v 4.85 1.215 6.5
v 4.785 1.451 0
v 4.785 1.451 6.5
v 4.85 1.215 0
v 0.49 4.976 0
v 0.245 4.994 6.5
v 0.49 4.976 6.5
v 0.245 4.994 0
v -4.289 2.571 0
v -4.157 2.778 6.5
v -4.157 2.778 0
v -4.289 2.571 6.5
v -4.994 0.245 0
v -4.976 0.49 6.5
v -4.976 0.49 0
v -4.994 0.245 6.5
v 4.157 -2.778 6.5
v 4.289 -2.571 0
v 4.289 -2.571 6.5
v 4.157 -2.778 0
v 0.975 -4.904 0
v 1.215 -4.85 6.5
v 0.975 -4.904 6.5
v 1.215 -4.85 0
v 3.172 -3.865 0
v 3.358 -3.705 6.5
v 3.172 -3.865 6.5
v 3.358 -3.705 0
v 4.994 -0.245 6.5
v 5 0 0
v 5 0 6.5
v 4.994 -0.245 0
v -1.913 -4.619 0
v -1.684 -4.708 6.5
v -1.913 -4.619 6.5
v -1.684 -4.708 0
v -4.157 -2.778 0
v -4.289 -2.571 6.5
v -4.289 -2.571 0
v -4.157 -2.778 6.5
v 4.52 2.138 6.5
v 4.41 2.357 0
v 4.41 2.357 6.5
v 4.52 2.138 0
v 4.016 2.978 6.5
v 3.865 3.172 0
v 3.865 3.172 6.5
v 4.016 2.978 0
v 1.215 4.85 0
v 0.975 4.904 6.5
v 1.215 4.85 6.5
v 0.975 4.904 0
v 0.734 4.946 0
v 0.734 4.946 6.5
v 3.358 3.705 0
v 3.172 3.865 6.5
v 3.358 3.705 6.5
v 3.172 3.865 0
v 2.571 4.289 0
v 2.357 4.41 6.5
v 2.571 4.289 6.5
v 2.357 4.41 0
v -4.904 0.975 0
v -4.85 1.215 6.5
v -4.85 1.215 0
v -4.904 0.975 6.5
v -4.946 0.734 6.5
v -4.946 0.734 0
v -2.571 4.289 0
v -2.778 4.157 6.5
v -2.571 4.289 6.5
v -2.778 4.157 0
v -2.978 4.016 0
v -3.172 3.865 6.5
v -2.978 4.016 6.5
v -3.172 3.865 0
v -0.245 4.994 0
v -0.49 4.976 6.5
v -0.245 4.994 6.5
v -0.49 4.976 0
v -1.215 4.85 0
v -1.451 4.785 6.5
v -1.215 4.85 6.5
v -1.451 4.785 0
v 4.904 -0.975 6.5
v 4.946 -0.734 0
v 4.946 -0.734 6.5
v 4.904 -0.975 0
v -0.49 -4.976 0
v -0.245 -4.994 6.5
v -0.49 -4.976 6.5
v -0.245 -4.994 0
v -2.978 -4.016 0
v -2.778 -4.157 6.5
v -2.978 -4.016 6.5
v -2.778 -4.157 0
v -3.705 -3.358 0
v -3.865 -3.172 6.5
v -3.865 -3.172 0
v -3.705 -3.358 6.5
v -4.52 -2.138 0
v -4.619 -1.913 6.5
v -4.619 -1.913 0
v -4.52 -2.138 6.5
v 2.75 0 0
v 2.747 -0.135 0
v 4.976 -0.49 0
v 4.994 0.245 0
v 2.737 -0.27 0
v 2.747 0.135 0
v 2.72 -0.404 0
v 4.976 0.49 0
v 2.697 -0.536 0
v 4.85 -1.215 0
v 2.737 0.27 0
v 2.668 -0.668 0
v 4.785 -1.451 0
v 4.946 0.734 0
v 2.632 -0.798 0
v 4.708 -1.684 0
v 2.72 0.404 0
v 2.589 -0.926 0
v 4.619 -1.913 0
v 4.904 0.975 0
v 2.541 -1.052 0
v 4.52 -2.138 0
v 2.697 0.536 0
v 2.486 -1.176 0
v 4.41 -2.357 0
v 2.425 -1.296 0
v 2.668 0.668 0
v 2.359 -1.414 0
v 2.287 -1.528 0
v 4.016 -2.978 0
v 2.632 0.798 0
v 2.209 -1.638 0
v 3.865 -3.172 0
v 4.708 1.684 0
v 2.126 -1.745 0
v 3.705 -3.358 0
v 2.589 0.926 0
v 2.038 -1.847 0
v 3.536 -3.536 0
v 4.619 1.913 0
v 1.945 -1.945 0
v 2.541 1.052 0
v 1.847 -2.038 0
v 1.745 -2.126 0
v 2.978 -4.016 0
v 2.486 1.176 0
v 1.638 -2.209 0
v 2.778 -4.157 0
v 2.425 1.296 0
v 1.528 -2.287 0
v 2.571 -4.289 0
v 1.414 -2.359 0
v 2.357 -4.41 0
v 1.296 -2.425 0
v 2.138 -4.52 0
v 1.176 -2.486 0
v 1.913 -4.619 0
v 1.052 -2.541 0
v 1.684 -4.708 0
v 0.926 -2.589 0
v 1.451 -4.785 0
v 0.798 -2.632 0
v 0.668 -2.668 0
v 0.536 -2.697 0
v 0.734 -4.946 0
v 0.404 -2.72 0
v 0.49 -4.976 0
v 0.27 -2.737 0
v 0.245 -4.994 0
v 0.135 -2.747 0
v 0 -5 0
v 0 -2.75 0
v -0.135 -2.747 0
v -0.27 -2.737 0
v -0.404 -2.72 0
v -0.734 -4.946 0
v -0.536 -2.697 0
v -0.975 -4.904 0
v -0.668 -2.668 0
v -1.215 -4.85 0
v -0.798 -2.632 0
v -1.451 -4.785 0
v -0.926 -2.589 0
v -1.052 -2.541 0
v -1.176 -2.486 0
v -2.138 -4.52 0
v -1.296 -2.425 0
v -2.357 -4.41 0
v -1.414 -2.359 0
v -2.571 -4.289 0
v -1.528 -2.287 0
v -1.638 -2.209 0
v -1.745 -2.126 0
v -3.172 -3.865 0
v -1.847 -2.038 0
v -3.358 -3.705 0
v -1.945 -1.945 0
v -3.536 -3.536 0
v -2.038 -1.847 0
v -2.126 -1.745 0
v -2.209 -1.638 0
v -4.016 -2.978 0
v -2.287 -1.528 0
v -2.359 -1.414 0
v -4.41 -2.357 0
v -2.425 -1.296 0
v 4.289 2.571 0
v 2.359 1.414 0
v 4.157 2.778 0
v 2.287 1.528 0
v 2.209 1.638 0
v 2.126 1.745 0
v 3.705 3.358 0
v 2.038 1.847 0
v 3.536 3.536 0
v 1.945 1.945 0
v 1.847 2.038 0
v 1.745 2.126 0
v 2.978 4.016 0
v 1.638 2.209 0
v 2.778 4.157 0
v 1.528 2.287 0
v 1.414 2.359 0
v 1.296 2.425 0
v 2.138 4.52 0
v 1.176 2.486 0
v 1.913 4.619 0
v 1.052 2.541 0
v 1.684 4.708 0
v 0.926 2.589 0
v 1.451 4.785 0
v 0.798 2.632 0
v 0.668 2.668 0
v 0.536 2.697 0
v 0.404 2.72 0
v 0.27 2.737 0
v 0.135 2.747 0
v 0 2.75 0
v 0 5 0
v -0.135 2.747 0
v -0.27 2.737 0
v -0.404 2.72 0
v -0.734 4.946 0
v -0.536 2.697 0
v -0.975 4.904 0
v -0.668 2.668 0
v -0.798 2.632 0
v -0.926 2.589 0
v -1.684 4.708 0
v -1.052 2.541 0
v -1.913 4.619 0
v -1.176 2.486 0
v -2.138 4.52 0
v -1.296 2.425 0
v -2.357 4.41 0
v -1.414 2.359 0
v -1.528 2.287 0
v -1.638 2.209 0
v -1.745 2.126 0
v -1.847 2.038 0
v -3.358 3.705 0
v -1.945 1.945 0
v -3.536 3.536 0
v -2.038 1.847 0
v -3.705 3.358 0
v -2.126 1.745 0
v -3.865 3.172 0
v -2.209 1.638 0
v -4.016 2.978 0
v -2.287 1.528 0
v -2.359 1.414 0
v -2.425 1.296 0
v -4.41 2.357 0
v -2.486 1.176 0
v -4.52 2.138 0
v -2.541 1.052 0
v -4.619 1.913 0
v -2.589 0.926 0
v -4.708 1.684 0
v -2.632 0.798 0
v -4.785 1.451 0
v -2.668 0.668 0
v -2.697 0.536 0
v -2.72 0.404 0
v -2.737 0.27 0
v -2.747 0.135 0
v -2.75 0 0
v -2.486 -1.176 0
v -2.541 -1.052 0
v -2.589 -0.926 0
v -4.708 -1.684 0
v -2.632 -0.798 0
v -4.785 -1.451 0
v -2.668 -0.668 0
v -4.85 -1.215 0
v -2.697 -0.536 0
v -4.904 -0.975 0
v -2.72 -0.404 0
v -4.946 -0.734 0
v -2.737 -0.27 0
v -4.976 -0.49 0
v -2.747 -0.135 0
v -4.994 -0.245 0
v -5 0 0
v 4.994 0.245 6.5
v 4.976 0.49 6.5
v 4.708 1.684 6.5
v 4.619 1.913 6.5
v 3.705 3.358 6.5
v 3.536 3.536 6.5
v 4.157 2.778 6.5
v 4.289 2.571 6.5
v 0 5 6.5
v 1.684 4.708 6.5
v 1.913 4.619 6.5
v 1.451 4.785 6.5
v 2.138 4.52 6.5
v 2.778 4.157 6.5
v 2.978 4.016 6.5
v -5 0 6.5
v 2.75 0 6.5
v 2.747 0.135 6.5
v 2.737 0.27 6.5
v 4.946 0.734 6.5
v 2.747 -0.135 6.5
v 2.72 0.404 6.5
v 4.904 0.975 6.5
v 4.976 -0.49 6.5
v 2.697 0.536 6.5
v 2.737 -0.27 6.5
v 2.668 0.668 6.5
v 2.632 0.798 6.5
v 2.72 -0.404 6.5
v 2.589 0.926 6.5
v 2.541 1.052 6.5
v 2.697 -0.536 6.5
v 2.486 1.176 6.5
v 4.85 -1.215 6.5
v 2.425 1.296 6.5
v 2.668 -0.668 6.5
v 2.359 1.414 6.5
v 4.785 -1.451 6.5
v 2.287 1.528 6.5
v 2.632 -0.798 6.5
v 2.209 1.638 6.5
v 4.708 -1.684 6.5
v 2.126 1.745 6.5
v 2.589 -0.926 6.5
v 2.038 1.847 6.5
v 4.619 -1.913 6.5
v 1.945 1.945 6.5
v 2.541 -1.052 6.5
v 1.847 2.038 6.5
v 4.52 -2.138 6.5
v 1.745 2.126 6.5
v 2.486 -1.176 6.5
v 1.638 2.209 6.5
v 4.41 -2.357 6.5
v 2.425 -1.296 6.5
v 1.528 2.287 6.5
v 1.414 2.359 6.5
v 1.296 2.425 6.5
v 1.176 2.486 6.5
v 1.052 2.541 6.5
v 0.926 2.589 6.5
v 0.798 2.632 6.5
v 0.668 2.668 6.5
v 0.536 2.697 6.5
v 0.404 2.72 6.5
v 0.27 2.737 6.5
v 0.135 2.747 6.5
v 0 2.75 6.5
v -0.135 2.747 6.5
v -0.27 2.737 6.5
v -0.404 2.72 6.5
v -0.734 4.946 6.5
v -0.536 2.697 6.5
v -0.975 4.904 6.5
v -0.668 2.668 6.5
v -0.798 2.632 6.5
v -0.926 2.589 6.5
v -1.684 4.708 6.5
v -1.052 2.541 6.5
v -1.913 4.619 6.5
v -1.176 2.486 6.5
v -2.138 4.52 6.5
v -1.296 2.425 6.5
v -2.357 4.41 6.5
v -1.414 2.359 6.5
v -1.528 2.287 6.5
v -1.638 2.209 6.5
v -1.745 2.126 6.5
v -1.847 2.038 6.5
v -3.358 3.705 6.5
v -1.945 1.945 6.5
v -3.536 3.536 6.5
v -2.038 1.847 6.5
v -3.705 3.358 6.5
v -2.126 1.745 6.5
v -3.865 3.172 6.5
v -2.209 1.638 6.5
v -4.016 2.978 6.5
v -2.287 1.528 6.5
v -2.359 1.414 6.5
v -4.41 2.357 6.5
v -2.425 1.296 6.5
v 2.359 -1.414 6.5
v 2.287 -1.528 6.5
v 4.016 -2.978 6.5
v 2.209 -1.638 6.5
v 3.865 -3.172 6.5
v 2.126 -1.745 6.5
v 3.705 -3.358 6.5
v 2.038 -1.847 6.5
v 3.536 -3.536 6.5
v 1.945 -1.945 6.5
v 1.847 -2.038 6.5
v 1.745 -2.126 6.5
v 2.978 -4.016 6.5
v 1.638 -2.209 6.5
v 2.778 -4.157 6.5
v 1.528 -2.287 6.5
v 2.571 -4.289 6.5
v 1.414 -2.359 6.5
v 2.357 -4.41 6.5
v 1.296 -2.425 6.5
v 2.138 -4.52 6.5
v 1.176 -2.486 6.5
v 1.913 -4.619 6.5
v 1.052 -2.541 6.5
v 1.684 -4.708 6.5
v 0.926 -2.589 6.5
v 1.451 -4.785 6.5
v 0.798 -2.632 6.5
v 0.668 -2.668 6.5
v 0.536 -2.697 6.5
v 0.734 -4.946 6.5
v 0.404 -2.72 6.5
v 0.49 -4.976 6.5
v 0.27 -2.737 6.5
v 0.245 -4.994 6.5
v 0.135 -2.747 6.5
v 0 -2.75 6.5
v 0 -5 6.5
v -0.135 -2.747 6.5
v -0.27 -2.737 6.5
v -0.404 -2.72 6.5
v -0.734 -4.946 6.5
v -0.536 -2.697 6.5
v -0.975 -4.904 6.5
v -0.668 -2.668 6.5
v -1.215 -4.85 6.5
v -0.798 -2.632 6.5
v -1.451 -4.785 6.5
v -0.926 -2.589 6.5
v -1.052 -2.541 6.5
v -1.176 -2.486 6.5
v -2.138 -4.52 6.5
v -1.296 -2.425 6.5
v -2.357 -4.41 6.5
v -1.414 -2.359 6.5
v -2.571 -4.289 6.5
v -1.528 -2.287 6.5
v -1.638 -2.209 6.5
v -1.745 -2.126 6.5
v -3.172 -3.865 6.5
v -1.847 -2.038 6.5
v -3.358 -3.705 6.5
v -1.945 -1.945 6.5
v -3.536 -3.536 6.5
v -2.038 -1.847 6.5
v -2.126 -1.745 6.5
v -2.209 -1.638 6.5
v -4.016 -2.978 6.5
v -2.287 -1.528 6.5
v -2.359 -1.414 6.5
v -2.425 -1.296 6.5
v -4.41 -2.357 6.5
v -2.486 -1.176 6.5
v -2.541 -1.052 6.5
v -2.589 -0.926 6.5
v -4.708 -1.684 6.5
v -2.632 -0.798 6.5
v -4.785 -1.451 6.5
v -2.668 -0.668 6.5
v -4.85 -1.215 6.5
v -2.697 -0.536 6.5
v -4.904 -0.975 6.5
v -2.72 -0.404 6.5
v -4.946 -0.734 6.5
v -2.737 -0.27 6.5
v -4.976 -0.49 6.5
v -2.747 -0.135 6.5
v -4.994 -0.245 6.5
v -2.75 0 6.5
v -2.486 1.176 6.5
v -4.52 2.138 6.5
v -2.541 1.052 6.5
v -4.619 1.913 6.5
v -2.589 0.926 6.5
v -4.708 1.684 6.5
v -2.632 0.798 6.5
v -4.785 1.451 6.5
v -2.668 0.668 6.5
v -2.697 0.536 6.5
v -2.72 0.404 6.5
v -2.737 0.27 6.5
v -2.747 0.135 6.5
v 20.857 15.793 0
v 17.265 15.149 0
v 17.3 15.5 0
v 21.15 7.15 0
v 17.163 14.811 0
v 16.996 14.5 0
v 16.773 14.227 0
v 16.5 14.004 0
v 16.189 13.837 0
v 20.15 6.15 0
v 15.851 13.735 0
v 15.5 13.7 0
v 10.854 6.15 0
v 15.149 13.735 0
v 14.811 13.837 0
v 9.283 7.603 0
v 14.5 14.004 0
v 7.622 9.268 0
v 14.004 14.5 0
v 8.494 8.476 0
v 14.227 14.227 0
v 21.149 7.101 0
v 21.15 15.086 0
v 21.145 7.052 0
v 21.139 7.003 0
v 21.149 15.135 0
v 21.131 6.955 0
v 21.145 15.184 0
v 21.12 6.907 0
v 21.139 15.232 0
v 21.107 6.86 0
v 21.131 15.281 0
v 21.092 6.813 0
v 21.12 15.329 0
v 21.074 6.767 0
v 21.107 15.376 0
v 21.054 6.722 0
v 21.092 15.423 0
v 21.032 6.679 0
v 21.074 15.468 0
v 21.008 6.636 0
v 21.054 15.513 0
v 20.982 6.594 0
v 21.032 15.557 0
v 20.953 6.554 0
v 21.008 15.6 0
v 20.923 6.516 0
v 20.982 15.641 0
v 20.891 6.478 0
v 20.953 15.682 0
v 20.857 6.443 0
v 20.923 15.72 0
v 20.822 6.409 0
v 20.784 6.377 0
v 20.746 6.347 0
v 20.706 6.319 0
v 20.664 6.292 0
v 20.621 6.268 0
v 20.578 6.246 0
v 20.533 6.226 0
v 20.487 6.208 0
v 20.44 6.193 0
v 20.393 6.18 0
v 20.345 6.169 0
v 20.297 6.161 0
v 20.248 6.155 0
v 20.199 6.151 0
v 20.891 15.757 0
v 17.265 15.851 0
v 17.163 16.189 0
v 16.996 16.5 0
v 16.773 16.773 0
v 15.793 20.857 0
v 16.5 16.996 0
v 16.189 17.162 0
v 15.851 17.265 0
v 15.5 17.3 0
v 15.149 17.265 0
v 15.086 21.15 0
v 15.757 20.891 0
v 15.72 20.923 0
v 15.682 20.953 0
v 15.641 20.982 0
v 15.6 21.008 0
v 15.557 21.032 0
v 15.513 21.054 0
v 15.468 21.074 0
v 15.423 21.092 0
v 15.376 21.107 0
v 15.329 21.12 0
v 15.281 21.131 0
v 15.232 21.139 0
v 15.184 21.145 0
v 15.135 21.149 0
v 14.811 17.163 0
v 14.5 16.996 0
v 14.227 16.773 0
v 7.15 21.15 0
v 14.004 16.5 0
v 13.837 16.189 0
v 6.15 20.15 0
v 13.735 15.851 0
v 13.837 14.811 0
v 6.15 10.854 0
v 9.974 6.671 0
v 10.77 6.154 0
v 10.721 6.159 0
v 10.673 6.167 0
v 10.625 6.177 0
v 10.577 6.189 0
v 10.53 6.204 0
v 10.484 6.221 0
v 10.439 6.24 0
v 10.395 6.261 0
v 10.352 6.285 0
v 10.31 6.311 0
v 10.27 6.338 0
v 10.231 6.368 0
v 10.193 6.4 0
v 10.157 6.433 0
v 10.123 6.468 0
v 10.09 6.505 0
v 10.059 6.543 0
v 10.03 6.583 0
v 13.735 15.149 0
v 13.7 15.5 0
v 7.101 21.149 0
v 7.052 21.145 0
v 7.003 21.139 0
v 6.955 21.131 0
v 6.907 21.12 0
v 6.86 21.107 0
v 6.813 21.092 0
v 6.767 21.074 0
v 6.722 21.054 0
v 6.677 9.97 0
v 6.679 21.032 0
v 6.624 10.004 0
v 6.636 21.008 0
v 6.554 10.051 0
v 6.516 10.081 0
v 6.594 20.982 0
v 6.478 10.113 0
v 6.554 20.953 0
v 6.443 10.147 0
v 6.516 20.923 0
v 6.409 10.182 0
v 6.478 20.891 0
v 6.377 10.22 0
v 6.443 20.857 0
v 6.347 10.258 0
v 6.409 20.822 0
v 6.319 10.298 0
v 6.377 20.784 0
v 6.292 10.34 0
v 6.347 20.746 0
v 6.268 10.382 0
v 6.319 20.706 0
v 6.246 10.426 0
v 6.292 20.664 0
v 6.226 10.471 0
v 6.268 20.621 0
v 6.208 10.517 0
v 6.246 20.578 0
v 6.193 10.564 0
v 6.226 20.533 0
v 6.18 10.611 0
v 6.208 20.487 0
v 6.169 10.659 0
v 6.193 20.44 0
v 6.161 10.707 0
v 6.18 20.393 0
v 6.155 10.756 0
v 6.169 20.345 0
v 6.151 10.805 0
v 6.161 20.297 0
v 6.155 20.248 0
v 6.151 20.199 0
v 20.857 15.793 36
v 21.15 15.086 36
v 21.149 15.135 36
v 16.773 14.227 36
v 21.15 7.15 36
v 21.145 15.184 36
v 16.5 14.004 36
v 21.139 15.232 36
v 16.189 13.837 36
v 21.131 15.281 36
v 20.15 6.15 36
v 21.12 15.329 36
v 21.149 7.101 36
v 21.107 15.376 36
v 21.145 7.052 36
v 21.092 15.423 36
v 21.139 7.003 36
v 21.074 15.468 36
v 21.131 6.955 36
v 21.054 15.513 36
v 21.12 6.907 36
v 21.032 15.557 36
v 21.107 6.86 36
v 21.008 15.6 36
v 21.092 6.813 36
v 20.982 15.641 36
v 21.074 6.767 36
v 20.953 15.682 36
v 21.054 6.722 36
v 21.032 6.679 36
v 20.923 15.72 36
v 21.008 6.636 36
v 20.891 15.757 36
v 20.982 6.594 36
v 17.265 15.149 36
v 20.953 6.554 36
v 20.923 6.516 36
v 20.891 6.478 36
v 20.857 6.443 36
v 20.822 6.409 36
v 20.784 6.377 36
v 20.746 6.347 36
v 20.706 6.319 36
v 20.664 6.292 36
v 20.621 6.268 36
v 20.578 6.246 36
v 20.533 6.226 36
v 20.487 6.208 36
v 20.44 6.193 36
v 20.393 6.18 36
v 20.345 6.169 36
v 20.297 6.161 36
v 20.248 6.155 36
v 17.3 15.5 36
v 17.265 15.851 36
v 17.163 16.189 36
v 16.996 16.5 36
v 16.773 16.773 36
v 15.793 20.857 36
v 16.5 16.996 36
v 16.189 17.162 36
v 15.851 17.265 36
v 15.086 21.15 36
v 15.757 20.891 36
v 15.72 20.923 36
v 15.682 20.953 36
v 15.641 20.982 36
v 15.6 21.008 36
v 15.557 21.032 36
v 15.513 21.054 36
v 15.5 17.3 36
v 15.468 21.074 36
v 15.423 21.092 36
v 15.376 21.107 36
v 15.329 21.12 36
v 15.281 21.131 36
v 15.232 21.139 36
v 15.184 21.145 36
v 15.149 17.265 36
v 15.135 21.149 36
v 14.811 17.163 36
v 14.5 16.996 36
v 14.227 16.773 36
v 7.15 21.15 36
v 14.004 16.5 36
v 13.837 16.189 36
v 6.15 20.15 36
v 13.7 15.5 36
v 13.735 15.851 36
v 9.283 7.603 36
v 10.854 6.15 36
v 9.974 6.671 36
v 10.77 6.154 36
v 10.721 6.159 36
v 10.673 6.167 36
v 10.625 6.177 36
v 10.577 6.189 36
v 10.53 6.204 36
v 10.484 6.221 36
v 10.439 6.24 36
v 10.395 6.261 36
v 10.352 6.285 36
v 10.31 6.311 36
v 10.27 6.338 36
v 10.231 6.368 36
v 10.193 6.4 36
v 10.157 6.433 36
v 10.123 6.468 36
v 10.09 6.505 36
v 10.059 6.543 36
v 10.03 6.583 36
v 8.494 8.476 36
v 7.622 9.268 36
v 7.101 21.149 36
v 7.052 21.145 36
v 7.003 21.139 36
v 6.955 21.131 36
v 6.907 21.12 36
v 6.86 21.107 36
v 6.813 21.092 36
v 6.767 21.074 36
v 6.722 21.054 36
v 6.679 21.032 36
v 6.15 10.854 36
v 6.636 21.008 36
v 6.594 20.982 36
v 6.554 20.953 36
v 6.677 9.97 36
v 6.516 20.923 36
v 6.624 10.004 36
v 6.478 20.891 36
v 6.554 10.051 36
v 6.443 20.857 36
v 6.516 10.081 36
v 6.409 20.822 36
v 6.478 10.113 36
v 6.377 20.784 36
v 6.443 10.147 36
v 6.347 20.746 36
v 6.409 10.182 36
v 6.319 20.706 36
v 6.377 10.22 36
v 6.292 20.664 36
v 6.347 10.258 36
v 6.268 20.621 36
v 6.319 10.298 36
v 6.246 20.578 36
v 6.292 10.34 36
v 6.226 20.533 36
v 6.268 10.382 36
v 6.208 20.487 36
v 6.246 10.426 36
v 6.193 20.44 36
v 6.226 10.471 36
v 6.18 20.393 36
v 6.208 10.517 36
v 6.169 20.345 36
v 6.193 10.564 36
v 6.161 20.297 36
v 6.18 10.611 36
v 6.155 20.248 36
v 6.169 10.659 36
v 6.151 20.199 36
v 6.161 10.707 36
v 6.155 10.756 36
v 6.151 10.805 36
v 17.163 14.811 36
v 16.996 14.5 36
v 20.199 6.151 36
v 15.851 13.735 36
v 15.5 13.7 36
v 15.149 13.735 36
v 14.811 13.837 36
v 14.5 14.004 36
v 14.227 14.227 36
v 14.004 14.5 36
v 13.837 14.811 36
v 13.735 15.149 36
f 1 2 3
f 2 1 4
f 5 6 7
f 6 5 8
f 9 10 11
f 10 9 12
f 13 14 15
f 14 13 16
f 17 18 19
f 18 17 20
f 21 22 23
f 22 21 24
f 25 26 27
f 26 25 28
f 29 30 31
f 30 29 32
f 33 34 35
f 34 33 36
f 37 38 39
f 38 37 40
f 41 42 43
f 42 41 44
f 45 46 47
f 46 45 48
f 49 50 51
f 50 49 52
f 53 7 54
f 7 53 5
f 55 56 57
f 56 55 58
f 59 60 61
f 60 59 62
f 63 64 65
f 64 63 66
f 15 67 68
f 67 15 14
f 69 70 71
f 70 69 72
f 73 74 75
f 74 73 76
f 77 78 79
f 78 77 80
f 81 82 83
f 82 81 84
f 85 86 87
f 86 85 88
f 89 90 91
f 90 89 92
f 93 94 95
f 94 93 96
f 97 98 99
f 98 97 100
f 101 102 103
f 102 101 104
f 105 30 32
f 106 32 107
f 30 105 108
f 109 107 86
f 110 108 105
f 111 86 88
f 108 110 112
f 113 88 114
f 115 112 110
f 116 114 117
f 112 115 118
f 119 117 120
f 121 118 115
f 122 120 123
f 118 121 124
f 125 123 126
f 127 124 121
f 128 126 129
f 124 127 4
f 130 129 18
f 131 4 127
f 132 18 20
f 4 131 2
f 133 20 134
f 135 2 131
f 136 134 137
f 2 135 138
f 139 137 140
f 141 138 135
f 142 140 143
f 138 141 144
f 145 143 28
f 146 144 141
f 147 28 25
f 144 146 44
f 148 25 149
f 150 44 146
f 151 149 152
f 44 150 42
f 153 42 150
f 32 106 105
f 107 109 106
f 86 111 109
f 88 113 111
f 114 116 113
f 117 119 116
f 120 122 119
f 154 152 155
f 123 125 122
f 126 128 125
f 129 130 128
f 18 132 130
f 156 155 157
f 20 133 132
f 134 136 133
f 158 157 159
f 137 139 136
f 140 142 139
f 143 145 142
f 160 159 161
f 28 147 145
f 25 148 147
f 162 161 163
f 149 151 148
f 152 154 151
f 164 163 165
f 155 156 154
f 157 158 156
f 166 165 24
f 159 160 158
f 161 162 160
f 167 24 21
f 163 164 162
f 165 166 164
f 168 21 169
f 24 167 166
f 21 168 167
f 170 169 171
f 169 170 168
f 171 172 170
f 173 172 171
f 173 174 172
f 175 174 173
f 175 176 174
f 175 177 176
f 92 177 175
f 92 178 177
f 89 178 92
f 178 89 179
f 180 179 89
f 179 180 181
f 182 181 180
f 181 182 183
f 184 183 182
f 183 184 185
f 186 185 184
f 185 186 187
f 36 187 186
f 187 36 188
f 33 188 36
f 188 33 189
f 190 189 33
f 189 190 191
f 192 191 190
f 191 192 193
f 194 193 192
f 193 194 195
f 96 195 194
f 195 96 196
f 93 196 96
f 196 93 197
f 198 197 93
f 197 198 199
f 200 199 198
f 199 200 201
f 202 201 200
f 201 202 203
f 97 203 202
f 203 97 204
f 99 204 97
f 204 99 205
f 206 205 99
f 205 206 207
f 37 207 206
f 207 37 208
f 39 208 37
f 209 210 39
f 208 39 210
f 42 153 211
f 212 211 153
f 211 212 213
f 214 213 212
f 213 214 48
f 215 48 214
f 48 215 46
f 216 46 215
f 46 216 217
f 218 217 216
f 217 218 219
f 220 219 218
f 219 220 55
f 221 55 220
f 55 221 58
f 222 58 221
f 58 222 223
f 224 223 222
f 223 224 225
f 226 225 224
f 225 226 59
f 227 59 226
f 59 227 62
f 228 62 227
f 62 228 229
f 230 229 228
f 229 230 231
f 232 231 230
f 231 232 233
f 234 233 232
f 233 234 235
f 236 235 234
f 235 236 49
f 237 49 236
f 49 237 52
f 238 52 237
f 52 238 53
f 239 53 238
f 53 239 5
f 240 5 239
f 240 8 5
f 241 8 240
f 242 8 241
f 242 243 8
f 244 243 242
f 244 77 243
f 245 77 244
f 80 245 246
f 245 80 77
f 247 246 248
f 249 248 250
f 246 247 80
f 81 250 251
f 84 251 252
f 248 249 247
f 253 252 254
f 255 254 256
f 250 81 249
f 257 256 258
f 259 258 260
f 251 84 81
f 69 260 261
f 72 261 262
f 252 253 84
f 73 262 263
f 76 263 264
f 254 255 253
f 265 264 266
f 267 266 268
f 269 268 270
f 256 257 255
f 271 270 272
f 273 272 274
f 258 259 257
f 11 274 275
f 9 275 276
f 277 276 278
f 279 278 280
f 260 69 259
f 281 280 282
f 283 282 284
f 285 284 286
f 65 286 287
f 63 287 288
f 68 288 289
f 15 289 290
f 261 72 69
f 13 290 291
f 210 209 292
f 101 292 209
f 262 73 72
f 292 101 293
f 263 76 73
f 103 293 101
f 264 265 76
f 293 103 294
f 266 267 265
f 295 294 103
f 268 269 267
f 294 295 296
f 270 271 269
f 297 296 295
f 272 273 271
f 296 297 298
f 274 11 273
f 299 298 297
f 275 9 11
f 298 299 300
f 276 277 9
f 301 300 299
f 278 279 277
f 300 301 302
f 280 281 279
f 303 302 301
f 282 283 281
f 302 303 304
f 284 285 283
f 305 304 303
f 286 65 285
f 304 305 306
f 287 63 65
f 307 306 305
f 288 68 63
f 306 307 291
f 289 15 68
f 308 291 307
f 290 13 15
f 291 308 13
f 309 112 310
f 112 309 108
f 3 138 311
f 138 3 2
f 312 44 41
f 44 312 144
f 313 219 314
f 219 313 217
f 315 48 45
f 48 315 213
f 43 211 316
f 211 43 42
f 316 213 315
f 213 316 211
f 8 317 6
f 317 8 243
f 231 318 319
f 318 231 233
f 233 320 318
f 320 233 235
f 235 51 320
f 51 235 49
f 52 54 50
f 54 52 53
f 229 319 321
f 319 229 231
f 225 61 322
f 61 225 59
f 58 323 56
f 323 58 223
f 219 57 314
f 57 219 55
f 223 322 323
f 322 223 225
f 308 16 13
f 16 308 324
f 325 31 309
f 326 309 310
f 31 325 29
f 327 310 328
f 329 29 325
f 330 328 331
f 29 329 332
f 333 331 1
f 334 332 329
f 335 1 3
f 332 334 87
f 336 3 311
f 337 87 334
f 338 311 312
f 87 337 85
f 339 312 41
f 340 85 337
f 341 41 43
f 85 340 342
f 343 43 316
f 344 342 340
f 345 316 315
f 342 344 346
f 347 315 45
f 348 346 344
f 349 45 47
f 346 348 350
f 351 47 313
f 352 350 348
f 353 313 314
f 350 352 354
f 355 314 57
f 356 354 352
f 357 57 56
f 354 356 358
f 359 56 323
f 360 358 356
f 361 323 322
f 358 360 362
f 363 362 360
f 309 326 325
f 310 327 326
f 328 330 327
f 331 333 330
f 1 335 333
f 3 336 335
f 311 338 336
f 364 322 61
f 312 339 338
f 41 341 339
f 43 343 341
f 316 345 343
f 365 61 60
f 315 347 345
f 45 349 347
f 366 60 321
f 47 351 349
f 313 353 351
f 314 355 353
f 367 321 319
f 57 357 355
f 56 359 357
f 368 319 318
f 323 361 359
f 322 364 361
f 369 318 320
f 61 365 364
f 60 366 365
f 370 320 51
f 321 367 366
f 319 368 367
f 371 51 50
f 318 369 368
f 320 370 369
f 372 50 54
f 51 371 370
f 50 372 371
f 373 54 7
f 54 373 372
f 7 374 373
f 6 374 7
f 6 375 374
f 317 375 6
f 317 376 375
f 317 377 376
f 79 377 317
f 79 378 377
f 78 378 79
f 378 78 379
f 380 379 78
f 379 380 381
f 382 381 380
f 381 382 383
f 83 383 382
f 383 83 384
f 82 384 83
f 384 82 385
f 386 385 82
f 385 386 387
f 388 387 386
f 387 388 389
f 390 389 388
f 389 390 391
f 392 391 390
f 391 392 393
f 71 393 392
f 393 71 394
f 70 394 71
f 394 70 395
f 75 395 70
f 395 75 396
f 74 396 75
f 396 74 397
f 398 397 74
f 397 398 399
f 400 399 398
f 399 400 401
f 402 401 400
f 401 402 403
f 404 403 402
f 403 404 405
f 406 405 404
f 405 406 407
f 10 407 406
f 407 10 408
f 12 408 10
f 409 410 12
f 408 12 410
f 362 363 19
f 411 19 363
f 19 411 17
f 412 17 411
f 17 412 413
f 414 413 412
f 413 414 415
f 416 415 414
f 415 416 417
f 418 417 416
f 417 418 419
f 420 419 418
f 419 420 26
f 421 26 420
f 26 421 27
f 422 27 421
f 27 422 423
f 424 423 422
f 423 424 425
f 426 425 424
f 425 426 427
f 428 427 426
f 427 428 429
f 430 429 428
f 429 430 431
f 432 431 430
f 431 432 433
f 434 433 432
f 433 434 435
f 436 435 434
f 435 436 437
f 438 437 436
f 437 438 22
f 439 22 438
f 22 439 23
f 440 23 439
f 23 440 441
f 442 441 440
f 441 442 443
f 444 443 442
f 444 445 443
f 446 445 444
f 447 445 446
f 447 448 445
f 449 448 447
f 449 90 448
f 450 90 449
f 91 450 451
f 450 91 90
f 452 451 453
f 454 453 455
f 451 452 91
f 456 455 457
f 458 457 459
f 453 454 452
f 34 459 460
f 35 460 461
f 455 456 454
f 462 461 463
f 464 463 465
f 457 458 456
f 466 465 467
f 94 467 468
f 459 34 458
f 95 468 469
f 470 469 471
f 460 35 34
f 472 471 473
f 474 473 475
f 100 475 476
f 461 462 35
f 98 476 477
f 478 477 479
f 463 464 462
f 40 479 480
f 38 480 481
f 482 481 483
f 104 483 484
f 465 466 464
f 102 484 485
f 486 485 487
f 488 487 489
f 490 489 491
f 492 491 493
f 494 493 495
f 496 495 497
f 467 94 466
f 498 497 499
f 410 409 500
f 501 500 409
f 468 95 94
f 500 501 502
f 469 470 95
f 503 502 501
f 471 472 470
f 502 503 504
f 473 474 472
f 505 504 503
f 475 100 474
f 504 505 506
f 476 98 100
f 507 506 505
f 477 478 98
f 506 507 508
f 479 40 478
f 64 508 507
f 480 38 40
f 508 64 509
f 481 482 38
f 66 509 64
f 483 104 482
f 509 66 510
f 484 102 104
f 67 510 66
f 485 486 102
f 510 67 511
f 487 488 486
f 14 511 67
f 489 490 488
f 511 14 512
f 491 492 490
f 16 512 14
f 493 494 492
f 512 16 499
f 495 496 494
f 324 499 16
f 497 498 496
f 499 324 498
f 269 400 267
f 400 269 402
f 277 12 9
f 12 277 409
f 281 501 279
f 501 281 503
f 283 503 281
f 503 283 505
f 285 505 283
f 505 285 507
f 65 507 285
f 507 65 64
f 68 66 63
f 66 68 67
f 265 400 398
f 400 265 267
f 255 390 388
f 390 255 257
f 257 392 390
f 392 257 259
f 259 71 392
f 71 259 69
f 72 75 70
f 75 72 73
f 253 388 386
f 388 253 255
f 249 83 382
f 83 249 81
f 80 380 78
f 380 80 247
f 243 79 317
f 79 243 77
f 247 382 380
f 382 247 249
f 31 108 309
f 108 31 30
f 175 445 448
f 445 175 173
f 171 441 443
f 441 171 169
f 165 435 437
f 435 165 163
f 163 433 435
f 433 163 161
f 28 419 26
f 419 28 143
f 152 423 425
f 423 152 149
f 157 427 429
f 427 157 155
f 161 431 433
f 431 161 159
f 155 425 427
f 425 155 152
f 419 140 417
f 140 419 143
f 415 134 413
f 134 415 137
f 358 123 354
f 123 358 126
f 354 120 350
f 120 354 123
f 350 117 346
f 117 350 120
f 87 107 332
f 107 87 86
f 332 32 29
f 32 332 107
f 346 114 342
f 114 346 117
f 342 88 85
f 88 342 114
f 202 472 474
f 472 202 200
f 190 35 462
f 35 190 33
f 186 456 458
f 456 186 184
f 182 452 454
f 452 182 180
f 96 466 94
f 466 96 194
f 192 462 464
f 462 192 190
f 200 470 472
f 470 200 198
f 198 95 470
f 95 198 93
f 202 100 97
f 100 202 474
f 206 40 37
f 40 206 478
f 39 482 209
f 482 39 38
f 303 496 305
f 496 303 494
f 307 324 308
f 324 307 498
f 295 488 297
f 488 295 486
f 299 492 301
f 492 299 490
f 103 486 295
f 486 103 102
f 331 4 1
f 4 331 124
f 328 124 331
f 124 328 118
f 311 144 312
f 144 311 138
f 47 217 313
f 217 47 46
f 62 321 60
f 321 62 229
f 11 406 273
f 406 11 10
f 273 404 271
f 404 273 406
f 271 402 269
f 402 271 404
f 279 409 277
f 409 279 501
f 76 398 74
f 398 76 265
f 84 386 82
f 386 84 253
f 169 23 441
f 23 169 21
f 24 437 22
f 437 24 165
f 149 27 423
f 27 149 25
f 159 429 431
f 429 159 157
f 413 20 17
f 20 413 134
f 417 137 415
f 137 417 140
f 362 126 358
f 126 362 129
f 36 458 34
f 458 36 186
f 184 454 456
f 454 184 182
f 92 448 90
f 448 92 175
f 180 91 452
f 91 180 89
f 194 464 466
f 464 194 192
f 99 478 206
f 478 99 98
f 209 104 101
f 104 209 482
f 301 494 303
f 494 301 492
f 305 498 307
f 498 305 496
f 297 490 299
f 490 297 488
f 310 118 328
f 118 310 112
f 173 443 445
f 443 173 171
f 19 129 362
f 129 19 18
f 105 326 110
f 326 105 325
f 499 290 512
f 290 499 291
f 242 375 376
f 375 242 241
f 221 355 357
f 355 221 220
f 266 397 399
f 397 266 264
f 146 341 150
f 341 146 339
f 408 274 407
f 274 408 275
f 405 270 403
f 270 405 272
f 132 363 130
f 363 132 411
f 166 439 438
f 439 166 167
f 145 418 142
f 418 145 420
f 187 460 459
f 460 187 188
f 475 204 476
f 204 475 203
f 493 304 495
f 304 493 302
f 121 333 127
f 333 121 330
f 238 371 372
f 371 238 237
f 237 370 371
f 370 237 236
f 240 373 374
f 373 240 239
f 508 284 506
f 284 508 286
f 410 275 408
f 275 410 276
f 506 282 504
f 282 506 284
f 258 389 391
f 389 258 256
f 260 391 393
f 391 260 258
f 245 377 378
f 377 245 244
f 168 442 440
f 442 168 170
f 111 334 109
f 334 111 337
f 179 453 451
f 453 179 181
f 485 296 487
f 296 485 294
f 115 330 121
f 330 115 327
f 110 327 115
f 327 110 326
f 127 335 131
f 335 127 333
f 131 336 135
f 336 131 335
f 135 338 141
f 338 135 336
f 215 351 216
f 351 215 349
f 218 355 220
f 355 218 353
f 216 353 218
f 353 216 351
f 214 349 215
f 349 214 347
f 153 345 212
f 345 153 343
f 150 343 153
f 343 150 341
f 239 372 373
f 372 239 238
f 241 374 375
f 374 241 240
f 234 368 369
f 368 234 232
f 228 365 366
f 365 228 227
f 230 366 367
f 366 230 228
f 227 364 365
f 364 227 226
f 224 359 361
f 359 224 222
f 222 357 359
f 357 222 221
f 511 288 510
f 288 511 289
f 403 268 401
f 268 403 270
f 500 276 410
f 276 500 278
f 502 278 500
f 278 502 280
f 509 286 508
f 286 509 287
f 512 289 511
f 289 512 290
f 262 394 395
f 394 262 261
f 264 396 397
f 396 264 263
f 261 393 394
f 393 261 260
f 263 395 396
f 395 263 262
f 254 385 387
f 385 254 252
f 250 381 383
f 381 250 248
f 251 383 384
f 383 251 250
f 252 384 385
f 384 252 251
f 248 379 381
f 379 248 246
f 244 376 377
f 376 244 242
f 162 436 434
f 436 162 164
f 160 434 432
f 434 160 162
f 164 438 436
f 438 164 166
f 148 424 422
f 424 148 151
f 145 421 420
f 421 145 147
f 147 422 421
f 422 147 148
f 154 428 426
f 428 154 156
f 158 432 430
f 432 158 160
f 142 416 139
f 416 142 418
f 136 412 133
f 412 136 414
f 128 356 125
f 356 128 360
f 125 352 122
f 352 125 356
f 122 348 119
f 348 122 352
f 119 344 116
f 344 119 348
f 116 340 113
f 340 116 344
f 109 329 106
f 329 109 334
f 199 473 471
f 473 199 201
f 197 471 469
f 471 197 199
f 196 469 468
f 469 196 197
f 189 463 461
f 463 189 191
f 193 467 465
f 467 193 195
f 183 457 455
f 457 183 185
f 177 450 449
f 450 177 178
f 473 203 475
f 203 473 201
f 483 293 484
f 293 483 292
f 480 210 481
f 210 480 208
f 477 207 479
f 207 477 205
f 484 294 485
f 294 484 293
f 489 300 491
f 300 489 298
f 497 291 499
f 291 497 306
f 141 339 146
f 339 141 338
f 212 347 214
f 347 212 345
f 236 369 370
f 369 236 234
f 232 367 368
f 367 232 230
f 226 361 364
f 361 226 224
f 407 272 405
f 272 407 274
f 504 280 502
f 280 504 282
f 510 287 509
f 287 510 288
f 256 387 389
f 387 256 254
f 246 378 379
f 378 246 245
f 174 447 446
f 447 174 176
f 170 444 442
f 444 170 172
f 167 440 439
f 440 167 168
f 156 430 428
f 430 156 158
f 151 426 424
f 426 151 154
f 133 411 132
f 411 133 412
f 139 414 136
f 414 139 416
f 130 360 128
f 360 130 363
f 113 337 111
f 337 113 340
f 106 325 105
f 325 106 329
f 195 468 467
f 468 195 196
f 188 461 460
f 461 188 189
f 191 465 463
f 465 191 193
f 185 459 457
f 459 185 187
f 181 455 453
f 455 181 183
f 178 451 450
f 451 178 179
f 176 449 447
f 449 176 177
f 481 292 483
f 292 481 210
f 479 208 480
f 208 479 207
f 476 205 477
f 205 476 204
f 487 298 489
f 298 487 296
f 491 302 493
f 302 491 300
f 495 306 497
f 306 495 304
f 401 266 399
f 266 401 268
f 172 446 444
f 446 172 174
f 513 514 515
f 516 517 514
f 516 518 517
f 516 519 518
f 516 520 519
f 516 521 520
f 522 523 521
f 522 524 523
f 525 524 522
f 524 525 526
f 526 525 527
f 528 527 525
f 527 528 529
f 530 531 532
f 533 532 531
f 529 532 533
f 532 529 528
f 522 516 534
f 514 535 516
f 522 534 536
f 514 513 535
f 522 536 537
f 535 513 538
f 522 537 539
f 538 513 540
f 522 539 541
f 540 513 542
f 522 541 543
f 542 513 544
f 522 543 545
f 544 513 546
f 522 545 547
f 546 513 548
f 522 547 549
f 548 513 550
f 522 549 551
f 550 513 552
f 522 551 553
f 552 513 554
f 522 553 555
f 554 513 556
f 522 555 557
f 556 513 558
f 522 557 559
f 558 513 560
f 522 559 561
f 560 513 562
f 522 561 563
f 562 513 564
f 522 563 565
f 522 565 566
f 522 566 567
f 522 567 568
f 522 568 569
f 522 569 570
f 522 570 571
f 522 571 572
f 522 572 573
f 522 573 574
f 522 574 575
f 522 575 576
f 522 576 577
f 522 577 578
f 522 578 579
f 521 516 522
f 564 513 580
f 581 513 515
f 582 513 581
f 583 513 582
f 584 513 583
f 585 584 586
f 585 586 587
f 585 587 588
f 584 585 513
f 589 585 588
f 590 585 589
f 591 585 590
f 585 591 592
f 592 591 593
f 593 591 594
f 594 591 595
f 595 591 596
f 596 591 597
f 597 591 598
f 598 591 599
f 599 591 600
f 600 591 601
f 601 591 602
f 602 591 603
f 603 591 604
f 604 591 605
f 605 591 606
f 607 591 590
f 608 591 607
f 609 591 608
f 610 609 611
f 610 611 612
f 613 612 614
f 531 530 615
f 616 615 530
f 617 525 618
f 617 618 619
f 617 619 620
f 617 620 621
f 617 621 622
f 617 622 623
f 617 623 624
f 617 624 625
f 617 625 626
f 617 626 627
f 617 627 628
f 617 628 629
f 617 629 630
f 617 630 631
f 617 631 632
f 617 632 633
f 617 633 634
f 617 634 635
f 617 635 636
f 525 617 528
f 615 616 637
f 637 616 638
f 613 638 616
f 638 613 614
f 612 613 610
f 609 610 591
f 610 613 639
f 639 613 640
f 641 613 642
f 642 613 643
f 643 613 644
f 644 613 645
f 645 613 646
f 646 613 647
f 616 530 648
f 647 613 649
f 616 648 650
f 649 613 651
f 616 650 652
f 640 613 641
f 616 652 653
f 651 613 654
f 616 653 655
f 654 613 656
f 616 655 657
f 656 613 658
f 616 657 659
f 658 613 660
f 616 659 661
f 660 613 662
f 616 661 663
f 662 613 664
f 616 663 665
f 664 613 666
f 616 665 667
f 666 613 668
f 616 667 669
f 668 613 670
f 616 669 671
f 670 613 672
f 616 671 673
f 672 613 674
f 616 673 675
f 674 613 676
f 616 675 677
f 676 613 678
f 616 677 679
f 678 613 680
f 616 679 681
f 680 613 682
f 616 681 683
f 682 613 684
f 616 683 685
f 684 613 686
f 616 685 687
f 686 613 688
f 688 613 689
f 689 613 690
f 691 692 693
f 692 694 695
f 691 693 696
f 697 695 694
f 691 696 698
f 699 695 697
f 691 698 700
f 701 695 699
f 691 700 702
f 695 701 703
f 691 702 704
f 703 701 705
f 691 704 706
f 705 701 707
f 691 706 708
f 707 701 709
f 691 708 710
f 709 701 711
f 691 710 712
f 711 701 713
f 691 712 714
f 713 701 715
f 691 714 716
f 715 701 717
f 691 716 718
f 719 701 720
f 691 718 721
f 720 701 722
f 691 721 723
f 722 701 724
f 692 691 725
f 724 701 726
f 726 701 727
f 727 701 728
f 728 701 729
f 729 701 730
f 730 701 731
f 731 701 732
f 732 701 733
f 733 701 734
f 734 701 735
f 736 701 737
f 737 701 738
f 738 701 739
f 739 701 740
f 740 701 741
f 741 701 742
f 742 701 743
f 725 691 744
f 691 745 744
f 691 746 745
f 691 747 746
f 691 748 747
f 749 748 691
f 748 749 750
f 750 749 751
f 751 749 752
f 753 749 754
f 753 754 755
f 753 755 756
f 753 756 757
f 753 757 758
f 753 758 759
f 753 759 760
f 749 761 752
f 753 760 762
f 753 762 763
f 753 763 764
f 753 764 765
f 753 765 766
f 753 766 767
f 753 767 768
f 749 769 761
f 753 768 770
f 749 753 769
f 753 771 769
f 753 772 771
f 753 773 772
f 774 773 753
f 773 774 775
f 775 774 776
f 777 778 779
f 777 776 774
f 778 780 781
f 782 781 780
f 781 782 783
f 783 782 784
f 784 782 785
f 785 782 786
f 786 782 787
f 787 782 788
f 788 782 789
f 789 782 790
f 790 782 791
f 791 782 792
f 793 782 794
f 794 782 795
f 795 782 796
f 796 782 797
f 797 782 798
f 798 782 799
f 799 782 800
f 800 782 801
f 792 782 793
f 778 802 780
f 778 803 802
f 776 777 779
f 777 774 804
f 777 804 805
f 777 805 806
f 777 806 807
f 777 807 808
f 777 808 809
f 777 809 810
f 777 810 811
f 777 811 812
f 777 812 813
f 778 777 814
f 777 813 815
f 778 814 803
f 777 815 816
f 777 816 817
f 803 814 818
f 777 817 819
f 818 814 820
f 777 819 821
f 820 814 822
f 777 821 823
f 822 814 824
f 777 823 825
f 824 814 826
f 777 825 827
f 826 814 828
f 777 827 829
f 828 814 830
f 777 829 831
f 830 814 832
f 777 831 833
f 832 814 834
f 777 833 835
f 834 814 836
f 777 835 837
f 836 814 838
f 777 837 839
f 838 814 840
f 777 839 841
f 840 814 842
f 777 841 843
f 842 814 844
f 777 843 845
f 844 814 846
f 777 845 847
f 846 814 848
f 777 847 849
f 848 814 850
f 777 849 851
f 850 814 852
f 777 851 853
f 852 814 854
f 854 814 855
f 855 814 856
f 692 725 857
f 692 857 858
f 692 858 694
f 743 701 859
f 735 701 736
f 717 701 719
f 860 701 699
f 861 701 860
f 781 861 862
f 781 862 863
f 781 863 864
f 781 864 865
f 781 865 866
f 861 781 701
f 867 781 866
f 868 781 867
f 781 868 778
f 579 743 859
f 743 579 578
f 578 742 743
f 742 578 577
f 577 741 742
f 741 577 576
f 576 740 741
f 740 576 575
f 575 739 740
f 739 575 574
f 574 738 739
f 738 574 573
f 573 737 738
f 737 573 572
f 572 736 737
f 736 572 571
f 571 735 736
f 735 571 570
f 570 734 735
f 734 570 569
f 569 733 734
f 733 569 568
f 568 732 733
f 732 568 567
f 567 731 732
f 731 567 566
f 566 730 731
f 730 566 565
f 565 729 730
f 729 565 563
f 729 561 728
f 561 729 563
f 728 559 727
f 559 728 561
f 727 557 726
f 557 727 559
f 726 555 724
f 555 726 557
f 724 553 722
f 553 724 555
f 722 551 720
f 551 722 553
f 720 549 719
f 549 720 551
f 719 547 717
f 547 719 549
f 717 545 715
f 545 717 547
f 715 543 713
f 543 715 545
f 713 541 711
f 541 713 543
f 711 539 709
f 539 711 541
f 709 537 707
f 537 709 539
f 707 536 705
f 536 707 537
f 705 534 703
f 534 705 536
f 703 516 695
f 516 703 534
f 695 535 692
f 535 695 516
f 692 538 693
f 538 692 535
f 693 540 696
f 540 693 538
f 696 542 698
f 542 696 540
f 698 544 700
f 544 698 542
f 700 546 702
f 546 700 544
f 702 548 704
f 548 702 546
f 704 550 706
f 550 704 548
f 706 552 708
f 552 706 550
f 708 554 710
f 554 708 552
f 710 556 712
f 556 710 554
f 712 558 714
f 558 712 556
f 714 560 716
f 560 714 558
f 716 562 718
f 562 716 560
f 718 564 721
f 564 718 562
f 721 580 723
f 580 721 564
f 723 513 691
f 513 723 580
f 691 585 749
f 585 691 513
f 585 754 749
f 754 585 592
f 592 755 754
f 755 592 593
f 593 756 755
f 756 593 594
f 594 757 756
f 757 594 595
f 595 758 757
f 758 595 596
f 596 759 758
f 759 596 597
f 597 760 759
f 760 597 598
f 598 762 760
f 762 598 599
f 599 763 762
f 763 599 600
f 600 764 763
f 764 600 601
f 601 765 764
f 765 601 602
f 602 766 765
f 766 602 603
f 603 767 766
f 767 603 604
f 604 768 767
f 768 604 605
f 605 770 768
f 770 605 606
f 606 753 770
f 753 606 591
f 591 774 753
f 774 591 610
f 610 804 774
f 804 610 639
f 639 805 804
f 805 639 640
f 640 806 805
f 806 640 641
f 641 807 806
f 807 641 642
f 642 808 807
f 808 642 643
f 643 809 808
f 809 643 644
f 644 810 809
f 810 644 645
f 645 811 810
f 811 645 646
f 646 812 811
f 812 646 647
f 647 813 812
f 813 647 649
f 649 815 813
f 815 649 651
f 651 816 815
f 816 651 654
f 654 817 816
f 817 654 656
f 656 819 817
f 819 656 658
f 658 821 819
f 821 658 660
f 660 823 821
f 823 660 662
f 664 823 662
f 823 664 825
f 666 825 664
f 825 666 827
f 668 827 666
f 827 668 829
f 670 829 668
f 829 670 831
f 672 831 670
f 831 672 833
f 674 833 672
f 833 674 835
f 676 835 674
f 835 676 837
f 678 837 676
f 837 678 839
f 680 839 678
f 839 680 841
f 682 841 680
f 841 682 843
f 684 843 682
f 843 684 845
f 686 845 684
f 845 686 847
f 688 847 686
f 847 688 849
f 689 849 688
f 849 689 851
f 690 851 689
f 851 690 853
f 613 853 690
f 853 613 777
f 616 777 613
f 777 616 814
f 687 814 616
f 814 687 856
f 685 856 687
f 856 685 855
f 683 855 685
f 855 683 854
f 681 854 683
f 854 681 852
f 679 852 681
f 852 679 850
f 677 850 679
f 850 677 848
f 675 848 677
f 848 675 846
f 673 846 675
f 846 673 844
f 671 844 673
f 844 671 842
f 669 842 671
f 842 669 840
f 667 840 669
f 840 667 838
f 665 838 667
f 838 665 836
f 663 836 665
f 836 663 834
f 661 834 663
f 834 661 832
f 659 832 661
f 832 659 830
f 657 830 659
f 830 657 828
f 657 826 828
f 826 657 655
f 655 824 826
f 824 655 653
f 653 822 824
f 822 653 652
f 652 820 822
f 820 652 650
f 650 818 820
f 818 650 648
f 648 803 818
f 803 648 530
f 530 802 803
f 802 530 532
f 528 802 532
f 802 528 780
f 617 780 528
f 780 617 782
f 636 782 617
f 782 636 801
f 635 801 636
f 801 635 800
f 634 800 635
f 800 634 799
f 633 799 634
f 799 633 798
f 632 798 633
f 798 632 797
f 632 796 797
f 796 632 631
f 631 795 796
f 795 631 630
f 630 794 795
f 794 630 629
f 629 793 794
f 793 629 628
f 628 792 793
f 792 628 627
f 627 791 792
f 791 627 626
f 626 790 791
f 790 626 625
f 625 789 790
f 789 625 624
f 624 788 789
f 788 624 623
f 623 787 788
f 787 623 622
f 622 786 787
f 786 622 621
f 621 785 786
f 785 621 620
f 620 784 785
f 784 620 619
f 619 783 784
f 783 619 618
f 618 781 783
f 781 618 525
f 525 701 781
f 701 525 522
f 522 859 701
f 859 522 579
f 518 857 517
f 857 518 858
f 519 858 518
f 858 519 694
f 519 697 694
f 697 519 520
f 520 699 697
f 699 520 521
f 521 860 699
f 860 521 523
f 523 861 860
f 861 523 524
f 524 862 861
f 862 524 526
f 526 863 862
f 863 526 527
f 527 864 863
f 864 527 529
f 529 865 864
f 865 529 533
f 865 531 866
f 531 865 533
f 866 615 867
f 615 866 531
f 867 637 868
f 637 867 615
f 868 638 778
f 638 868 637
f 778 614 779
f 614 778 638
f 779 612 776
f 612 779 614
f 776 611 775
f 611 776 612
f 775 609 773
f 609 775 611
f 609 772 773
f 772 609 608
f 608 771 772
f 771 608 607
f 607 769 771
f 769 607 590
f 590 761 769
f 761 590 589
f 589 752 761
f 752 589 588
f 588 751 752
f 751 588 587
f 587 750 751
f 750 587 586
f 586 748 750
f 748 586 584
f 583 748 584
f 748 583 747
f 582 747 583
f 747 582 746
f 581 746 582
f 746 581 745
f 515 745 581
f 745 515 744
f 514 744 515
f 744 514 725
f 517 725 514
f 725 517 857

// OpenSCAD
module wheel_spacer(width=10, thick=6.5, screw=5.5, $fn=128) {
    difference() {
        cylinder(r=width/2, h=thick);
        translate([0,0,-1]) cylinder(r=screw/2, h=thick+2);
    }
}

nema17 = [42.3, 31, 24, 3.6]; //width, screw width, face width,
module motor_spacer(width=15, height=36, motor=nema17) {
    base = motor[0]/2 - width;
    linear_extrude(height=height) offset(1, $fn=128) offset(-1) difference() {
        polygon([[base,base],[motor[0]/2,base],[motor[0]/2,motor[1]/2],[motor[1]/2,motor[0]/2],[base,motor[0]/2]]);
        circle(r=motor[2]/2, $fn=64);
        translate([motor[1]/2, motor[1]/2]) circle(r=motor[3]/2, $fn=32);
    }
}

wheel_spacer();

motor_spacer();
